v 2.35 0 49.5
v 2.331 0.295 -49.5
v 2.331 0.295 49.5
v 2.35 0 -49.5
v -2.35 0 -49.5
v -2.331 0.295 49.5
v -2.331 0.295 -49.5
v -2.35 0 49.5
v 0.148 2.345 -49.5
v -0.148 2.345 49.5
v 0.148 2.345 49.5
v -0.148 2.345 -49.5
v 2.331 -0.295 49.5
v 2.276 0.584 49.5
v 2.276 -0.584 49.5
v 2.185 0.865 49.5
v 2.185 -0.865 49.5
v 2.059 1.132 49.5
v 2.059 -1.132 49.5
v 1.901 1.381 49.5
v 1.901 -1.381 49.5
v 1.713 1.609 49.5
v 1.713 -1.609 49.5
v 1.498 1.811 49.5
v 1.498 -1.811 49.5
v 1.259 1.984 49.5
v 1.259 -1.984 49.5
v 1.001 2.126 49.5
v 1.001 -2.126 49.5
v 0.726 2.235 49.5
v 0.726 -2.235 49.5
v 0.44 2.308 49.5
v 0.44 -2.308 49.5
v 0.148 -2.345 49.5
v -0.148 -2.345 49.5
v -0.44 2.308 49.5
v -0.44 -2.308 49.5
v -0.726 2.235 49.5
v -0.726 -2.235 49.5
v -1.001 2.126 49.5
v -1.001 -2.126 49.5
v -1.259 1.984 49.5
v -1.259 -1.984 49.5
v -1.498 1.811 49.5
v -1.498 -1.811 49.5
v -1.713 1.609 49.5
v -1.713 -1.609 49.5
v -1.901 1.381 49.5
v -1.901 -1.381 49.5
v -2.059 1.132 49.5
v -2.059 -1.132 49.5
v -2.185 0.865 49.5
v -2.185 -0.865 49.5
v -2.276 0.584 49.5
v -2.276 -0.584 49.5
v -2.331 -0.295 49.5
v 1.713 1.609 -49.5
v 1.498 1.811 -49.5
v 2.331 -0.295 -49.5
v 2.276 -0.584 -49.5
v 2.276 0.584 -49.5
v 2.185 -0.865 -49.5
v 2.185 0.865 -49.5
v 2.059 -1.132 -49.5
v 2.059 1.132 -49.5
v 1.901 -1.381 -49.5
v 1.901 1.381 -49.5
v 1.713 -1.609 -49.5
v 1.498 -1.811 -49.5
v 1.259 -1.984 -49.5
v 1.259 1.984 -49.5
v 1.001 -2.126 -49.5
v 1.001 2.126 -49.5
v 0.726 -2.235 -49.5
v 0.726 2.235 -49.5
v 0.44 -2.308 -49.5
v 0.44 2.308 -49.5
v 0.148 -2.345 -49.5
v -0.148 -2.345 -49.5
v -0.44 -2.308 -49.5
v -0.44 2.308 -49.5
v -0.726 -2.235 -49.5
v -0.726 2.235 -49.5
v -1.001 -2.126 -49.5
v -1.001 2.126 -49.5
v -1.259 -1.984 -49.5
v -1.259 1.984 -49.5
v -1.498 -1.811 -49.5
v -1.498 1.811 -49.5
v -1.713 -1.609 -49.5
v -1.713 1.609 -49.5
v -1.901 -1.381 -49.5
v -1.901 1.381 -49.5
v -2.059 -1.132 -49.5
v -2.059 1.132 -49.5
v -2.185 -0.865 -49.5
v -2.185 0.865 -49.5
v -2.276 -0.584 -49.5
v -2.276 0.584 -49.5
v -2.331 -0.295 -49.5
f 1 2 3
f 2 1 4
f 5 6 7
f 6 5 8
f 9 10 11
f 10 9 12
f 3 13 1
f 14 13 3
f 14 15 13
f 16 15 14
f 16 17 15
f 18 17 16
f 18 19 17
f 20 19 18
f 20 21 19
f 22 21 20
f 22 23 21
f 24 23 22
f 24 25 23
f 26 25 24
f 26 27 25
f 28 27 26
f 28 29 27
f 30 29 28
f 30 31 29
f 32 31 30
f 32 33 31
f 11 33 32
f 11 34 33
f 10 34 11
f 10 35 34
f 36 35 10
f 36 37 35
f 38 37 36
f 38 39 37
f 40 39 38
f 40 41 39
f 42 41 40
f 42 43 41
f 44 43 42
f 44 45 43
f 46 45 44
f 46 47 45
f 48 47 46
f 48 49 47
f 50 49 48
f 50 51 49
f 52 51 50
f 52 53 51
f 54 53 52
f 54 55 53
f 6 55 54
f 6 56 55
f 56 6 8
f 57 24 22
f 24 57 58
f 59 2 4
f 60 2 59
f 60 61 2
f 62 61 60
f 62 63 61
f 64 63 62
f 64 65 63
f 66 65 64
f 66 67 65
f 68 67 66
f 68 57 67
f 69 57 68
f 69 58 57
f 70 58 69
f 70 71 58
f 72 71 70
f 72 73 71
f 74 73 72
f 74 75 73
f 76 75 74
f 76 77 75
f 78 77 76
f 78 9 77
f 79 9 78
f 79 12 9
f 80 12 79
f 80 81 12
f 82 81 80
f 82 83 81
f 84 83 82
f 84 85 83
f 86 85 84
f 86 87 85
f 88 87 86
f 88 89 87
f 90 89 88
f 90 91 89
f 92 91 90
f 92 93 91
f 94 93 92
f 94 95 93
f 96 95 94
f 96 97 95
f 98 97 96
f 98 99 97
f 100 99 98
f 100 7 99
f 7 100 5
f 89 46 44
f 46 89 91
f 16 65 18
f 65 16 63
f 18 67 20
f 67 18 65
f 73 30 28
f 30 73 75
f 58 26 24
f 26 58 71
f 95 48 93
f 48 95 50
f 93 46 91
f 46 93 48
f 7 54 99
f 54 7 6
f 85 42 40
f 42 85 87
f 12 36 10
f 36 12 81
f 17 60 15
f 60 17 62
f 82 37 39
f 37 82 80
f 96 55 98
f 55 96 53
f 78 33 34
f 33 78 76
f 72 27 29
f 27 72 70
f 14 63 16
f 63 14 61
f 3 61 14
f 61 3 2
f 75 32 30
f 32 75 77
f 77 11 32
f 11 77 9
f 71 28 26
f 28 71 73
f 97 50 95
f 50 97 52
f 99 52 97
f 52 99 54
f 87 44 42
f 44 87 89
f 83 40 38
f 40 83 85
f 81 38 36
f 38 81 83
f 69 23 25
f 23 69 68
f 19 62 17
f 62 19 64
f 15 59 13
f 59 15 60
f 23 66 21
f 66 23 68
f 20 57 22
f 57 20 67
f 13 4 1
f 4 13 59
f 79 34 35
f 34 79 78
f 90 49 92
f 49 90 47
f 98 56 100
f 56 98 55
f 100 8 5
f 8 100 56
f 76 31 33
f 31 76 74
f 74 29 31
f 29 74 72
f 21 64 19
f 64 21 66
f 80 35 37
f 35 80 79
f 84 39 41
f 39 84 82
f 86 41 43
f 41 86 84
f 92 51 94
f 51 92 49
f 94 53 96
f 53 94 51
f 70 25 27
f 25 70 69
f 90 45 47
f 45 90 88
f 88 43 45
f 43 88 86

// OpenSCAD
$fn = 50;


difference() {
	union() {
		translate(v = [0, 0, -49.5000000000]) {
			cylinder(h = 99, r = 2.3500000000);
		}
	}
	union() {
		translate(v = [0, 0, -100.0000000000]) {
			cylinder(h = 200, r = 0);
		}
	}
}
